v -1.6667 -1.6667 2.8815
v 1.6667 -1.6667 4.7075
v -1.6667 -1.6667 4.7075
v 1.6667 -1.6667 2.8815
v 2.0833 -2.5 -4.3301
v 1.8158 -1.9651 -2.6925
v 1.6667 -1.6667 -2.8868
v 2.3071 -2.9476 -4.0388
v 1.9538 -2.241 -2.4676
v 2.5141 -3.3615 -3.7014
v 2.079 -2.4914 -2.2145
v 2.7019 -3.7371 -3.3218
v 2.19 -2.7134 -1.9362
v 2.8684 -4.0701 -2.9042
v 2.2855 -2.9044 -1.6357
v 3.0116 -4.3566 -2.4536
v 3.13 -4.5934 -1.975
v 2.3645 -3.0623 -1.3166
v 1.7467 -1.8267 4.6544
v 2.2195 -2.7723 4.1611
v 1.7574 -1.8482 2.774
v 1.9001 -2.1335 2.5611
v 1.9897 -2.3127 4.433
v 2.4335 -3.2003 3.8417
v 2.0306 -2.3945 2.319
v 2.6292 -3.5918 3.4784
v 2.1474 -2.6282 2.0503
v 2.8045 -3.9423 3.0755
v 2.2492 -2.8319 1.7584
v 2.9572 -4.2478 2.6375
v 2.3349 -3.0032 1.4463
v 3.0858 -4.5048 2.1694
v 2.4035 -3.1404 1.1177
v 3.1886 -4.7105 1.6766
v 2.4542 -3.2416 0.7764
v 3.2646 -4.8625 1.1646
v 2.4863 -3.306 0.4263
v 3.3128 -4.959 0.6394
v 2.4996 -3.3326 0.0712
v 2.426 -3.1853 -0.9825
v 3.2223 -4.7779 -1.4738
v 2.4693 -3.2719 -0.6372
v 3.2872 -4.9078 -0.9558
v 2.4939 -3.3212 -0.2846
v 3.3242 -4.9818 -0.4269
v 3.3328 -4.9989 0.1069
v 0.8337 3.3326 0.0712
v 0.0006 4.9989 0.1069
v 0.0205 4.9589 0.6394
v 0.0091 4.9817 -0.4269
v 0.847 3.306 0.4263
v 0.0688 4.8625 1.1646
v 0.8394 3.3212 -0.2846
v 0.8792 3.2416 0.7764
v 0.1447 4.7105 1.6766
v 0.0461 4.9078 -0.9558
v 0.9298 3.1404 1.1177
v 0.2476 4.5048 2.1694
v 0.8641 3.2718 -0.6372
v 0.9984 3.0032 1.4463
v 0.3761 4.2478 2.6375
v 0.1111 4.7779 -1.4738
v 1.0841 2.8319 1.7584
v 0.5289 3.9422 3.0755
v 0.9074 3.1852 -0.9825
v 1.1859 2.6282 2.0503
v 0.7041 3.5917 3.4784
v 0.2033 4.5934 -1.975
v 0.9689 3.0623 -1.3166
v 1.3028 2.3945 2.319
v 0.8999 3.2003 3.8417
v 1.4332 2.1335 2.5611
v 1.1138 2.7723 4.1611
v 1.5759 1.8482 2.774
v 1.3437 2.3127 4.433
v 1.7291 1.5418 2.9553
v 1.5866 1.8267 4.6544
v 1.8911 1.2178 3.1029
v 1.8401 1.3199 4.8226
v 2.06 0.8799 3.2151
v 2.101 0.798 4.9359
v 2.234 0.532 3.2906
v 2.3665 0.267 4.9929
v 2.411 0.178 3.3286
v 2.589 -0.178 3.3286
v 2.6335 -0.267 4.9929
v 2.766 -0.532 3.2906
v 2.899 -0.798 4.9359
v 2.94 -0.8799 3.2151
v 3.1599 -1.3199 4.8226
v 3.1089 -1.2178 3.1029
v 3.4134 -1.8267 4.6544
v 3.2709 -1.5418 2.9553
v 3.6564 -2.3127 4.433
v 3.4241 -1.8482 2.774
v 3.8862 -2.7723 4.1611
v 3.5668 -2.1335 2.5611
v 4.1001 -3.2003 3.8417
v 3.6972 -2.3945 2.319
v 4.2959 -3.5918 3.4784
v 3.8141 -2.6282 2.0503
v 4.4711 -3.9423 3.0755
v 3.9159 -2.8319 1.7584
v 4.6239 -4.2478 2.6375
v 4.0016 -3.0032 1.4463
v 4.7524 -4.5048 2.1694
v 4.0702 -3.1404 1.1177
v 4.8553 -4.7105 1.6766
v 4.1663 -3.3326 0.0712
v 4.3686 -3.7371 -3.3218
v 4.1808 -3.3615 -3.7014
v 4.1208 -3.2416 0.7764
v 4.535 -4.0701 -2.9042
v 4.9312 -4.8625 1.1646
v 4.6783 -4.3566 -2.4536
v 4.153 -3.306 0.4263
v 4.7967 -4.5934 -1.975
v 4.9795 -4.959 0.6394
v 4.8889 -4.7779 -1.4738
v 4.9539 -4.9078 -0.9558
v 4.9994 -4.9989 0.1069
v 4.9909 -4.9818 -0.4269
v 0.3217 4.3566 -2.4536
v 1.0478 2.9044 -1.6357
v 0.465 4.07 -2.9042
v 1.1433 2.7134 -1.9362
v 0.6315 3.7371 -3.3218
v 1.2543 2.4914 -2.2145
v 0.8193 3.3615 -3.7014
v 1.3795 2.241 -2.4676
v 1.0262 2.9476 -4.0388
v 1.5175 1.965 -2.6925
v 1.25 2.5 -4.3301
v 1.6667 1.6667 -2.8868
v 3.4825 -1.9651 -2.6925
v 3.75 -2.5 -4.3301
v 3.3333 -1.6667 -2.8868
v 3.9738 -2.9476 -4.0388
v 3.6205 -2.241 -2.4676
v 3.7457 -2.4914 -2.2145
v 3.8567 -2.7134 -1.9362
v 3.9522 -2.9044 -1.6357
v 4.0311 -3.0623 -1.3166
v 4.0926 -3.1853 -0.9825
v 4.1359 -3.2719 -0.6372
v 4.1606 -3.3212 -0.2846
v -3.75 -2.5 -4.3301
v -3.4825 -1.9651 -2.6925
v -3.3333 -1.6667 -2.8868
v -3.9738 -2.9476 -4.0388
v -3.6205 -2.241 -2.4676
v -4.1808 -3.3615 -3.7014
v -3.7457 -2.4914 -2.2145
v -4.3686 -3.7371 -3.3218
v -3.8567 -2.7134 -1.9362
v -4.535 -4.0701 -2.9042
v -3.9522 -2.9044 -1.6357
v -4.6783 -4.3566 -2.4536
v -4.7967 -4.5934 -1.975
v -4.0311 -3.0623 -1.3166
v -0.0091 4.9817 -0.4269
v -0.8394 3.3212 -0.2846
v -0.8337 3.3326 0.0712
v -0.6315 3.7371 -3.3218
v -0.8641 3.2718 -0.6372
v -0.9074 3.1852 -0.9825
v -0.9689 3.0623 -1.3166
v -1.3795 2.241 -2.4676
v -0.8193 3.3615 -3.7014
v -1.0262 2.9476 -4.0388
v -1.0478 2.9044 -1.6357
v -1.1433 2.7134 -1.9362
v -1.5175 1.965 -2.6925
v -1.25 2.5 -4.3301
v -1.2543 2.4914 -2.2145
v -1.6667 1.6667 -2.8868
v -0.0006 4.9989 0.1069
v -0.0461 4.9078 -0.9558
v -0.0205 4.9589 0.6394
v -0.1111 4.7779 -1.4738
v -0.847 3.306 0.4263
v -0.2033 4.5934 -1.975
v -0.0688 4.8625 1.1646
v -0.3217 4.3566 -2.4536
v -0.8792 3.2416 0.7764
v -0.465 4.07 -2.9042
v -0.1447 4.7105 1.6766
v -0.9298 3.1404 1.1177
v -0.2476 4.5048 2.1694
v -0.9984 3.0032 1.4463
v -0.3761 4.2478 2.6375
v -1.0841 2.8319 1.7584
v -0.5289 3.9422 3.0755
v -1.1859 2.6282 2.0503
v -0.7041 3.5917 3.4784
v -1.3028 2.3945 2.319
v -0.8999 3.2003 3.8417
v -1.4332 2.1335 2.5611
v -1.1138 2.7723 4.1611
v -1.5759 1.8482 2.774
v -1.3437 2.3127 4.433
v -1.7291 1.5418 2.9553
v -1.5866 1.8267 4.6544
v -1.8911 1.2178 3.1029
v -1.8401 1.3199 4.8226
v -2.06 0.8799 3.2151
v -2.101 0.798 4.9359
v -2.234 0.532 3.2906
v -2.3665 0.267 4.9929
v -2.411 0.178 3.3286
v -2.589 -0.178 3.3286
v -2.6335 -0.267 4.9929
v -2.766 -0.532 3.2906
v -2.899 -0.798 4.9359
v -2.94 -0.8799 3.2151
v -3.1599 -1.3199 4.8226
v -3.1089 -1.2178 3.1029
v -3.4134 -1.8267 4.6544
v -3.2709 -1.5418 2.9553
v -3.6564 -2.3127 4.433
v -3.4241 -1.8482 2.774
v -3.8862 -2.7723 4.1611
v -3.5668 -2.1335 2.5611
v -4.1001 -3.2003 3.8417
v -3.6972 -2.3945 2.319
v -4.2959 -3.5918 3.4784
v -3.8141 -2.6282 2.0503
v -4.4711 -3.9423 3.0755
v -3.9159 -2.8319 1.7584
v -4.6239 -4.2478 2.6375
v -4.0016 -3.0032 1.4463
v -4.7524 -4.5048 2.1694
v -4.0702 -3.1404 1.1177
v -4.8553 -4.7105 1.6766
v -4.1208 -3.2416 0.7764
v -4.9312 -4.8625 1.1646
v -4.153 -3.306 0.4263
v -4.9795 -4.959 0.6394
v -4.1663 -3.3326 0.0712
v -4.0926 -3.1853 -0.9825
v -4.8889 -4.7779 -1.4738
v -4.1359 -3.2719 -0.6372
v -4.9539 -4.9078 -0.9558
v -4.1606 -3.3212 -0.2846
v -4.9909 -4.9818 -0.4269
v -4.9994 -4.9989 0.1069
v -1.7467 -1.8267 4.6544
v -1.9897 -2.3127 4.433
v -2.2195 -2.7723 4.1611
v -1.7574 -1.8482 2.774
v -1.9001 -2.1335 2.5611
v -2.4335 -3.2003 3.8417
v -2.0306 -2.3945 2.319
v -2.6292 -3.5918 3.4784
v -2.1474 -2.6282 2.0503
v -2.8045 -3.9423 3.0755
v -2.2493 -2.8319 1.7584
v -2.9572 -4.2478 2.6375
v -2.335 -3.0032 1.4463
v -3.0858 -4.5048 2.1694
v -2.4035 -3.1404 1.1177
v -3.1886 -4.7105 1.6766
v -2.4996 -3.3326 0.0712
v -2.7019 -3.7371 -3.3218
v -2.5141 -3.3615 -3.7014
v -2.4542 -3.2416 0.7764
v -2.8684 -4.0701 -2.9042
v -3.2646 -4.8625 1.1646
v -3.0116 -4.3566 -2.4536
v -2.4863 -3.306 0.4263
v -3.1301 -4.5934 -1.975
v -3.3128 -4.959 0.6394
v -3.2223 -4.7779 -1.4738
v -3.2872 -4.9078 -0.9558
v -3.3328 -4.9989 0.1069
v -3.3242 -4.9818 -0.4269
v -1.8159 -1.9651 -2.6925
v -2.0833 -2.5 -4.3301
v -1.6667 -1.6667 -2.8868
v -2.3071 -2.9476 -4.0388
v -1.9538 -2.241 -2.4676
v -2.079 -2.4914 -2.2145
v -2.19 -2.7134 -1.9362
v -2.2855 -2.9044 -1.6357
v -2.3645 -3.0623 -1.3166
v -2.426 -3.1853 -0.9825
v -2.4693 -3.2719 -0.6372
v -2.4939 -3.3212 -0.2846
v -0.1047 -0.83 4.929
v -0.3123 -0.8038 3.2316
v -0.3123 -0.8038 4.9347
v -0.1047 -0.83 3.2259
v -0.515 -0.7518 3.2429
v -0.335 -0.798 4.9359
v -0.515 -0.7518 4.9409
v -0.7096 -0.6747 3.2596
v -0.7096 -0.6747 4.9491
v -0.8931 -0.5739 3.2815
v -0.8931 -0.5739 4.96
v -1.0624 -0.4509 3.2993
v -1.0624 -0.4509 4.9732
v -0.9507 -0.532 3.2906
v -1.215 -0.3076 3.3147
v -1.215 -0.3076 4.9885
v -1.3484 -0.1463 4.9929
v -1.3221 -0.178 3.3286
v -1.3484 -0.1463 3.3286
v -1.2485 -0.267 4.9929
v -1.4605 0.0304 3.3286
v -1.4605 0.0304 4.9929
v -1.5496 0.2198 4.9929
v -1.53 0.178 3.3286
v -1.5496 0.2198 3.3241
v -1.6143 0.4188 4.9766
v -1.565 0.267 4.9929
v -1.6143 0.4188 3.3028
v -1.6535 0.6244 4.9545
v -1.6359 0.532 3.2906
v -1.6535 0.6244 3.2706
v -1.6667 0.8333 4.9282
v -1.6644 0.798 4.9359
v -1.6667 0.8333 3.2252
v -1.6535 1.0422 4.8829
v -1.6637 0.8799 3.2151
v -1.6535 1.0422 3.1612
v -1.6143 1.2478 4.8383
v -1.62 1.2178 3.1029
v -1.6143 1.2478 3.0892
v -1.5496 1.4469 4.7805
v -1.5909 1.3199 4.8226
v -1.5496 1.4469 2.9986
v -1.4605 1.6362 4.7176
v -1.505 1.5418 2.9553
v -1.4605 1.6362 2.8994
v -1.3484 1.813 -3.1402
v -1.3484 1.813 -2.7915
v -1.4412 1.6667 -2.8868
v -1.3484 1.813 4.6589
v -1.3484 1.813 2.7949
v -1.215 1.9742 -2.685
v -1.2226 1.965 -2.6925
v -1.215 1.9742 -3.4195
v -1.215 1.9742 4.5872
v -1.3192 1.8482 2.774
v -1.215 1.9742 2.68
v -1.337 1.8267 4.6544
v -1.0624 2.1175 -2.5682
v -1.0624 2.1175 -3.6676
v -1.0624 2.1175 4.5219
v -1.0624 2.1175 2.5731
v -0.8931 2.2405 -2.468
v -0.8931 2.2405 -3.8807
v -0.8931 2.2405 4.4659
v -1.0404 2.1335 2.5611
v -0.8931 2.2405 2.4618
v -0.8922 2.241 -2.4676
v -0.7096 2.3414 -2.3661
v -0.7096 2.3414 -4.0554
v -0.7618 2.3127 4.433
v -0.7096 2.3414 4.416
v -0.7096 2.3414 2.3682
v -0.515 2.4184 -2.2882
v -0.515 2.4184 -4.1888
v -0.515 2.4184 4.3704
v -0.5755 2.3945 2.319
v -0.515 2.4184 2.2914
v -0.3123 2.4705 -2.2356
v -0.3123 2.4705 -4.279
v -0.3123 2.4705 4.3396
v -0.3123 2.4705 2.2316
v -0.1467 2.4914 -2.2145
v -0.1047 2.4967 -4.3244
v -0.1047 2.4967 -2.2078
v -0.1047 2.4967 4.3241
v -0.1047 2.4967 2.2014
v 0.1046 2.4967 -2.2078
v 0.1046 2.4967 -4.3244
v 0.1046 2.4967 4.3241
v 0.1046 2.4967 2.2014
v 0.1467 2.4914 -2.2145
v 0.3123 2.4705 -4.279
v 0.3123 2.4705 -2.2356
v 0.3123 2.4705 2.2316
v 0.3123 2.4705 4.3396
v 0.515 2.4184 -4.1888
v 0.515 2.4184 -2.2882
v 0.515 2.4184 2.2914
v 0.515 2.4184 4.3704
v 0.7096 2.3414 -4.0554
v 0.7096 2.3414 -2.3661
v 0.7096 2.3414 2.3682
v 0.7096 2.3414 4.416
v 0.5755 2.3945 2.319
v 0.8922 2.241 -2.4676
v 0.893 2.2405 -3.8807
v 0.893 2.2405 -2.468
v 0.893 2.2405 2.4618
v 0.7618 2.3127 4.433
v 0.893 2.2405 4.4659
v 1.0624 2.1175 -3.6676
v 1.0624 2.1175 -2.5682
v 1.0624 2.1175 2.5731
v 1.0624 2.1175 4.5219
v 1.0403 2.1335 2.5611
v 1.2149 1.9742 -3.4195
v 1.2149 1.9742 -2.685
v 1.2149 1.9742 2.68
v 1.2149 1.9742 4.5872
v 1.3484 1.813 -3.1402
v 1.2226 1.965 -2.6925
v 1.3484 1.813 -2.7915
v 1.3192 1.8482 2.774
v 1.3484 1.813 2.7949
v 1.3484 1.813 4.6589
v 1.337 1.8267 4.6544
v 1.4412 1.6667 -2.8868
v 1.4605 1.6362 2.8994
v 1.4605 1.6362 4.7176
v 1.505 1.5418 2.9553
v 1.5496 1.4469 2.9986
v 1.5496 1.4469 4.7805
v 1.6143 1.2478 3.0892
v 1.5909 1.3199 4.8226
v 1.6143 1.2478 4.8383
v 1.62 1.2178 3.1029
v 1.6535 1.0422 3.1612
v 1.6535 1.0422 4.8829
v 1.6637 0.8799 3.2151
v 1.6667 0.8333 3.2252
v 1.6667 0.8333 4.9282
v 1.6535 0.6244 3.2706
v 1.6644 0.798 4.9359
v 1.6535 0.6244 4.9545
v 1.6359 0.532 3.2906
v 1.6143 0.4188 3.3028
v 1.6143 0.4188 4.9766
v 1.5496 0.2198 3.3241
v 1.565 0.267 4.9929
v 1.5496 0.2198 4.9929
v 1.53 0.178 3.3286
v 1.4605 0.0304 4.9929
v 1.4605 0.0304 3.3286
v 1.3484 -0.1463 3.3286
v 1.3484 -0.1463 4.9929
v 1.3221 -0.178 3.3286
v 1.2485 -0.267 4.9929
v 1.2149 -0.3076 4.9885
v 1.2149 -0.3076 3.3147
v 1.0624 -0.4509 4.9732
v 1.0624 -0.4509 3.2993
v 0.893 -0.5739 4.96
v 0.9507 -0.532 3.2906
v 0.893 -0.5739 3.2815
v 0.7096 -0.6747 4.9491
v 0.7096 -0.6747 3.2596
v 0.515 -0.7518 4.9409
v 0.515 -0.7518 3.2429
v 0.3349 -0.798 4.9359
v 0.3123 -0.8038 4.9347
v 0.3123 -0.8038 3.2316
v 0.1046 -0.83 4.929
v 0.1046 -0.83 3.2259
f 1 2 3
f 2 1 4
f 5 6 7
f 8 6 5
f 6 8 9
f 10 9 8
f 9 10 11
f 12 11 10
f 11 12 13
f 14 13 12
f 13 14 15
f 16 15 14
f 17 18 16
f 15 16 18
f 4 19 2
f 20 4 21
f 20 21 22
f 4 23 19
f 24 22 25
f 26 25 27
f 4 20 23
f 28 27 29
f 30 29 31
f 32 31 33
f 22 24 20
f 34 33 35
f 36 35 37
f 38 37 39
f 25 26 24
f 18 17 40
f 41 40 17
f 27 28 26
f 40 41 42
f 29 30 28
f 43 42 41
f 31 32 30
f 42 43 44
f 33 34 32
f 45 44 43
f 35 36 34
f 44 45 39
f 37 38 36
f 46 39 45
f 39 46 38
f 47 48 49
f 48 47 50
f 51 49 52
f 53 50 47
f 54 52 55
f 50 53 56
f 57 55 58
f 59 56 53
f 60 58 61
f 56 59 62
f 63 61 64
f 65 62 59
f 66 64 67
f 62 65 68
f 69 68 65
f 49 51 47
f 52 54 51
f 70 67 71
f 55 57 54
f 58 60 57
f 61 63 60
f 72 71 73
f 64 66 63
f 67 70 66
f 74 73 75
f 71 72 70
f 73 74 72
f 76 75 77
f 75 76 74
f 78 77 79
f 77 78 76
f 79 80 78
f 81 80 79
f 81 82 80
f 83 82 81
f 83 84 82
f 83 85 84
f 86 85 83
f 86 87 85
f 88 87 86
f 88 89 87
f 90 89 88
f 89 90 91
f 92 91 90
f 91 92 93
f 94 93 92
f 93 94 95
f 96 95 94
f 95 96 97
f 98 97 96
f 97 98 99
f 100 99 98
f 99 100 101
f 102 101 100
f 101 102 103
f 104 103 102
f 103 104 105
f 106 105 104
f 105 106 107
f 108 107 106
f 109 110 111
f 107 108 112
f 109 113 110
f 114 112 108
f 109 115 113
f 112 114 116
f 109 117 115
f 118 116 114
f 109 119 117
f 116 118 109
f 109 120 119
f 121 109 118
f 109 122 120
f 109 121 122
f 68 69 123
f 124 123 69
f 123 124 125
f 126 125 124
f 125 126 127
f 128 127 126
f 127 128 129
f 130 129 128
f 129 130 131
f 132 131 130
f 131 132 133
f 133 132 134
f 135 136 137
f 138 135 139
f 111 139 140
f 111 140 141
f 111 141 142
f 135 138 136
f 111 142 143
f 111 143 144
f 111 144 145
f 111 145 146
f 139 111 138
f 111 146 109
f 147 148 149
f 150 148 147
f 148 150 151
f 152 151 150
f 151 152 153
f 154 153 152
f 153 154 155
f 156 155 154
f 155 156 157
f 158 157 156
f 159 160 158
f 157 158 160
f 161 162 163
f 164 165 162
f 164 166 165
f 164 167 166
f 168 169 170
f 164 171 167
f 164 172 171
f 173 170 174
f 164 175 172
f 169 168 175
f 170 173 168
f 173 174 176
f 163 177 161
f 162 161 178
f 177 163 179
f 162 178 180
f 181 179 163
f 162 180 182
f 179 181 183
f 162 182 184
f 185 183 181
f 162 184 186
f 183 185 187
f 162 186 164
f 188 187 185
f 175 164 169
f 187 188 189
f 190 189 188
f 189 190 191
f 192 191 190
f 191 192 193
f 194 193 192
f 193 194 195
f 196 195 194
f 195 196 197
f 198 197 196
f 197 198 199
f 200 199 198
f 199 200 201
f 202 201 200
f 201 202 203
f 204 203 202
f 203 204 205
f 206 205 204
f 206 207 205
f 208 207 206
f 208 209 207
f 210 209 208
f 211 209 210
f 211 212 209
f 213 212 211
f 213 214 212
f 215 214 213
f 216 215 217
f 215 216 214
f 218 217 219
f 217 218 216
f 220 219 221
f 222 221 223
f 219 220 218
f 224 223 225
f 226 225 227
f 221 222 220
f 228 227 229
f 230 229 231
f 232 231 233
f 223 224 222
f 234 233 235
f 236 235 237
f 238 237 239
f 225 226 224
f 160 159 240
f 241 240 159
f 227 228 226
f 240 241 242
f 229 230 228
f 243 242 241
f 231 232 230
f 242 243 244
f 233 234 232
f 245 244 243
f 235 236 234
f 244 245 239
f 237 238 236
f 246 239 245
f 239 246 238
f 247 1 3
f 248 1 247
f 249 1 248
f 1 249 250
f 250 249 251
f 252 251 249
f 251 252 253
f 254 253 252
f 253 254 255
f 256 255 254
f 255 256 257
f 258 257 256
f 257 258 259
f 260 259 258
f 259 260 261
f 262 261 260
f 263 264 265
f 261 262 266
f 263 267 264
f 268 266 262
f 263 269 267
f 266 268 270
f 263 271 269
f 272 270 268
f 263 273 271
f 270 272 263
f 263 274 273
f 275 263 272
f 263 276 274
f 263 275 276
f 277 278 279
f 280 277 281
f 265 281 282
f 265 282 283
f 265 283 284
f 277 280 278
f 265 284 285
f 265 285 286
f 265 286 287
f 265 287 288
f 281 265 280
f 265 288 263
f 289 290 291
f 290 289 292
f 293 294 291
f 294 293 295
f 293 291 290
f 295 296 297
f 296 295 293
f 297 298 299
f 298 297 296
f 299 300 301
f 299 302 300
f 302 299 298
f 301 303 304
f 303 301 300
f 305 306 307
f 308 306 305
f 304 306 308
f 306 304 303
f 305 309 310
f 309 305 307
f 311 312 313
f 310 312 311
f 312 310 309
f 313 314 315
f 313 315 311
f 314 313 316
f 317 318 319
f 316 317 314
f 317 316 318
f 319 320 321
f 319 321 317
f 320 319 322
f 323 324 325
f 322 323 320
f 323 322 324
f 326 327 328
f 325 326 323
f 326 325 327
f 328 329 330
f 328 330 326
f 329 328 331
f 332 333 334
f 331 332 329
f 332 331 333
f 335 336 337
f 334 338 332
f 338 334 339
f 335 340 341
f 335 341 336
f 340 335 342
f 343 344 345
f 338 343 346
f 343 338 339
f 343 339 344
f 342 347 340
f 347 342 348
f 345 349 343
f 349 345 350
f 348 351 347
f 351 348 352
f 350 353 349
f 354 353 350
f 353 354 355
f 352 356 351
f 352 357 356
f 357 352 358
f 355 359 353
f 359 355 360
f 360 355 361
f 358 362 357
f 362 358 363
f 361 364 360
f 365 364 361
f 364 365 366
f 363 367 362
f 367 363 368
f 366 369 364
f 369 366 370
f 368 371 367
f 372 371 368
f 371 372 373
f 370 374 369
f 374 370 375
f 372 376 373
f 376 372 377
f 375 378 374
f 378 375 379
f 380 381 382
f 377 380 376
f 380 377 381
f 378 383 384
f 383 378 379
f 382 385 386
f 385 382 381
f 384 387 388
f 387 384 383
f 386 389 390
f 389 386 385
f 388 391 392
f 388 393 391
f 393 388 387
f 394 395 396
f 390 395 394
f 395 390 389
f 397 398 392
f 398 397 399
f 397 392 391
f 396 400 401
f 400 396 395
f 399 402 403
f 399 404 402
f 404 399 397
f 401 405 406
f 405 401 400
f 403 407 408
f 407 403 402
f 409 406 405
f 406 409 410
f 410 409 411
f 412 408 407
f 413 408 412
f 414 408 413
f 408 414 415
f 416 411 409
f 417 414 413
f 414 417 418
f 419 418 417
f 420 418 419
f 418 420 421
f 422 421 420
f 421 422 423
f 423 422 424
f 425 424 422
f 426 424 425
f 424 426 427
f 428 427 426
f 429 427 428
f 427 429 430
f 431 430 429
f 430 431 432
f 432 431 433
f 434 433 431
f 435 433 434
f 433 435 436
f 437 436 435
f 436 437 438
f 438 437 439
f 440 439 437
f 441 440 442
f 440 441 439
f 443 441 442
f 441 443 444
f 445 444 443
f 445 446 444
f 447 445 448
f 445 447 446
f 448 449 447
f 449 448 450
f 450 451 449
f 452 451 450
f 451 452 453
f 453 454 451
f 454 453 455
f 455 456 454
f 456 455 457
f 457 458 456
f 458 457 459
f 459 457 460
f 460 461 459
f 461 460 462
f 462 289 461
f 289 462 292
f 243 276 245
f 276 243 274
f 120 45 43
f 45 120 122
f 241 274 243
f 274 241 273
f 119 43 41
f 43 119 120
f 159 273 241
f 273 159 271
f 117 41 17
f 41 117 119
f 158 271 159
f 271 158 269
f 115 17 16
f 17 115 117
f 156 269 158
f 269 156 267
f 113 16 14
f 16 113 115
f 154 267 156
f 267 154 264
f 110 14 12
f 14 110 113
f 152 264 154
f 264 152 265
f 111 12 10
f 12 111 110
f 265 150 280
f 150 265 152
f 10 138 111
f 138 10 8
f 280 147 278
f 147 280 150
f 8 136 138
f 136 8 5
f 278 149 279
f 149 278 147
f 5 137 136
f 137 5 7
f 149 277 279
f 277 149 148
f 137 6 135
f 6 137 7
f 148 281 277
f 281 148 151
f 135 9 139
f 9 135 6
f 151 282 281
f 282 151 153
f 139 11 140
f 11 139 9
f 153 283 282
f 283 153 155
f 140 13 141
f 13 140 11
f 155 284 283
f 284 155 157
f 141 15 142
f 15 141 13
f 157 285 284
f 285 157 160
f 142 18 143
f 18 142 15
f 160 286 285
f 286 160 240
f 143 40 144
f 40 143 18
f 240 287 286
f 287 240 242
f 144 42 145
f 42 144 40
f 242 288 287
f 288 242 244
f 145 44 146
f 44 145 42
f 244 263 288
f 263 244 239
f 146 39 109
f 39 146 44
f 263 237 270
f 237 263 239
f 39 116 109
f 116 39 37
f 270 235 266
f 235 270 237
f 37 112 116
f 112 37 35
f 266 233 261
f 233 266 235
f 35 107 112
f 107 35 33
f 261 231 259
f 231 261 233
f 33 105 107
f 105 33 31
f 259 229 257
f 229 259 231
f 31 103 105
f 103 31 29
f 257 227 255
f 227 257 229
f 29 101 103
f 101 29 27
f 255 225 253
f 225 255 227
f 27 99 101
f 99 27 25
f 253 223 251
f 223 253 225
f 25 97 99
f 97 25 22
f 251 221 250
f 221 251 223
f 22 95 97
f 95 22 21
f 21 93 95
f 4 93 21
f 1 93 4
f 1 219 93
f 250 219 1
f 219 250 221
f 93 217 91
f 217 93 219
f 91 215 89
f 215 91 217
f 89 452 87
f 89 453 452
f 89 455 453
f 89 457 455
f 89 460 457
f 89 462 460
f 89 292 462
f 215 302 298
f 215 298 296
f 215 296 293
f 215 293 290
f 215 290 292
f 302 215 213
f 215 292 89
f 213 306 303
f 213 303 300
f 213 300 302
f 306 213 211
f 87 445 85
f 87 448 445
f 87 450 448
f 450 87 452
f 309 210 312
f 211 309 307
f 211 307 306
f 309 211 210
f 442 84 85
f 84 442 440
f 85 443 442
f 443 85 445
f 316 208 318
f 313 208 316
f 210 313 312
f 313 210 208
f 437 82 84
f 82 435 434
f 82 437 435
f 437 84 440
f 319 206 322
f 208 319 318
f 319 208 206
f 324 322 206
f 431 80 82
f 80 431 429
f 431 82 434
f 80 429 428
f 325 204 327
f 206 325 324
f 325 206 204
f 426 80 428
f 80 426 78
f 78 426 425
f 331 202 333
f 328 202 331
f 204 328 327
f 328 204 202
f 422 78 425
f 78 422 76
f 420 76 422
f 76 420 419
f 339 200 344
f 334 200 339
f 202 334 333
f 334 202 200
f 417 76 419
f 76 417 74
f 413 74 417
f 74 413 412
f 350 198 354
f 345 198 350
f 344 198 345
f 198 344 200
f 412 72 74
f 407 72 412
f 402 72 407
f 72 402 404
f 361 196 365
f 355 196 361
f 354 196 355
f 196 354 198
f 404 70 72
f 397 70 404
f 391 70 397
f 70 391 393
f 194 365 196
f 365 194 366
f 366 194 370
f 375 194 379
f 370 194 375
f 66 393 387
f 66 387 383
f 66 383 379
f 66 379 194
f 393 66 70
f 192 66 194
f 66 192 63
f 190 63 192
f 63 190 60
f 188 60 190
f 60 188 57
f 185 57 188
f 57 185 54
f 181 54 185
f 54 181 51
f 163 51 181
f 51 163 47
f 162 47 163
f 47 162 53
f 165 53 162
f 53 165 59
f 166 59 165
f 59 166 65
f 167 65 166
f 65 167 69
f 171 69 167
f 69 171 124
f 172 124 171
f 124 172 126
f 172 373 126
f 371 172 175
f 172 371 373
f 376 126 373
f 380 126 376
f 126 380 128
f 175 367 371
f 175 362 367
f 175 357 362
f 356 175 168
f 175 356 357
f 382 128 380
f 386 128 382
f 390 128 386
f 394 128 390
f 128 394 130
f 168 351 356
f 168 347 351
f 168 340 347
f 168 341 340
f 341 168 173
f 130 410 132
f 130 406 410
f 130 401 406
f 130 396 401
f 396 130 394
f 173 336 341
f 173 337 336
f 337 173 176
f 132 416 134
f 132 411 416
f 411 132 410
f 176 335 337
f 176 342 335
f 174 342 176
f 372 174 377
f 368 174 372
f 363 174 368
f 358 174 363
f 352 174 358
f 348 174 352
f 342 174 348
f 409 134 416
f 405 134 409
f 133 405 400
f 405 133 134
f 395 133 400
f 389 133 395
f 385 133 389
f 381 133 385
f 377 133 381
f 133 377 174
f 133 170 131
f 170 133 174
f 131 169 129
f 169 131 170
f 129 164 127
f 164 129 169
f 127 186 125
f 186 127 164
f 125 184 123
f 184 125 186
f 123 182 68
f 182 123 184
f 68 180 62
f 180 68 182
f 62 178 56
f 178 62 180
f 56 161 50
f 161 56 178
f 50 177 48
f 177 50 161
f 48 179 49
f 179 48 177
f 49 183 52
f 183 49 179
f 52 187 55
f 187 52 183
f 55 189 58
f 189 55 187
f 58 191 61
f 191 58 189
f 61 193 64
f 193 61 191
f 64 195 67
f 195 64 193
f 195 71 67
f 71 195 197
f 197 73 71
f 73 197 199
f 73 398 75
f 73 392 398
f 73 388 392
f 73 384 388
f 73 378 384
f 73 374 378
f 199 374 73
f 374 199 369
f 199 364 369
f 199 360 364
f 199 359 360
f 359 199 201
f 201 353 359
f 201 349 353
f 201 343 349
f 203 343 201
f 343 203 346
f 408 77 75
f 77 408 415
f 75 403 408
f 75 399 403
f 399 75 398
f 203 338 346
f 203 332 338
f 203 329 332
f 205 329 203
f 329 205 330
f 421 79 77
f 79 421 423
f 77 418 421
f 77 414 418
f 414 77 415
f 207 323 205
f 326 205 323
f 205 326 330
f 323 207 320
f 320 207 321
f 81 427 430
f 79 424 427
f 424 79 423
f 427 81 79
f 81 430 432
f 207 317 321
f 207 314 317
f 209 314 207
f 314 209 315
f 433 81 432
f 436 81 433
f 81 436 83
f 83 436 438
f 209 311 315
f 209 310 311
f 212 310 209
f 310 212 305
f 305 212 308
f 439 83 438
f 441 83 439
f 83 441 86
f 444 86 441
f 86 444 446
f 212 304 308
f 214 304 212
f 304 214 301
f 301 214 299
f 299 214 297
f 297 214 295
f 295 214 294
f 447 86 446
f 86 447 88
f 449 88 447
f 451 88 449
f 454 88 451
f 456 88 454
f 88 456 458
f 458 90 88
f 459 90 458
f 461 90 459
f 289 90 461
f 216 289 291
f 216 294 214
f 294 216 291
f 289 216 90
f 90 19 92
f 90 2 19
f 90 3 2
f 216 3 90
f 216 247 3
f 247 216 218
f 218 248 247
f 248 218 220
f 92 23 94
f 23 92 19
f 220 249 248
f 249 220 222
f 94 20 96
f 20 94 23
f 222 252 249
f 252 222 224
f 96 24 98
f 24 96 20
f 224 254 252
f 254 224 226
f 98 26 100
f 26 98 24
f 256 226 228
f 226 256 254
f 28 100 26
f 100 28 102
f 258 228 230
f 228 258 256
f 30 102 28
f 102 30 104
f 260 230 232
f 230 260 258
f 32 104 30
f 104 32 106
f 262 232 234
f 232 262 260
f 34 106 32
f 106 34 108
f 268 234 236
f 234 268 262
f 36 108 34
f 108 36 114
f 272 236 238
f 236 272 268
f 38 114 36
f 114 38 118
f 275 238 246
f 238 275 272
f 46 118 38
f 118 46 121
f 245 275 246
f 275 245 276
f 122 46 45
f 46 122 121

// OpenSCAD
// Generated by SolidPython 1.1.3 on 2025-02-25 01:33:33
$fn=50;


intersection() {
	translate(v = [-5.0000000000, -5.0000000000, -5.0000000000]) {
		linear_extrude(height = 10) {
			difference() {
				polygon(points = [[0, 0], [5.0000000000, 10], [10, 0], [8.3333333333, 0], [6.6666666667, 3.3333333333], [3.3333333333, 3.3333333333], [1.6666666667, 0]]);
				translate(v = [5.0000000000, 5.8333333333]) {
					circle(r = 1.6666666667);
				}
			}
		}
	}
	rotate(a = 90, v = [0, 1, 0]) {
		translate(v = [-5.0000000000, -5.0000000000, -5.0000000000]) {
			linear_extrude(height = 10) {
				polygon(points = [[9.3301270189, 7.5000000000], [9.0387948484, 7.9475644476], [8.7013899854, 8.3615044513], [8.3217613875, 8.7370979763], [7.9042396813, 9.0700604263], [7.4535877600, 9.3565935206], [6.9749464512, 9.5934286231], [6.4737758721, 9.7778640289], [5.9557931435, 9.9077957850], [5.4269071715, 9.9817416901], [4.8931512411, 9.9988582039], [4.3606141916, 9.9589500691], [3.8353709579, 9.8624725392], [3.3234132705, 9.7105261849], [2.8305813044, 9.5048443395], [2.3624970575, 9.2477733259], [1.9245002169, 8.9422456905], [1.5215872470, 8.5917467505], [1.1583543913, 8.2002748347], [0.8389452414, 7.7722956725], [0.5670034681, 7.3126914512], [0.3456312568, 6.8267051218], [0.1773539185, 6.3198805903], [0.0640910829, 5.7979994752], [0.0071347997, 5.2670151533], [0.0071347997, 4.7329848467], [0.0640910829, 4.2020005248], [0.1773539185, 3.6801194097], [0.3456312568, 3.1732948782], [0.5670034681, 2.6873085488], [0.8389452414, 2.2277043275], [1.1583543913, 1.7997251653], [1.5215872470, 1.4082532495], [1.9245002169, 1.0577543095], [2.3624970575, 0.7522266741], [2.8305813044, 0.4951556605], [3.3234132705, 0.2894738151], [3.8353709579, 0.1375274608], [4.3606141916, 0.0410499309], [4.8931512411, 0.0011417961], [5.4269071715, 0.0182583099], [5.9557931435, 0.0922042150], [6.4737758721, 0.2221359711], [6.9749464512, 0.4065713769], [7.4535877600, 0.6434064794], [7.9042396813, 0.9299395737], [8.3217613875, 1.2629020237], [8.7013899854, 1.6384955487], [9.0387948484, 2.0524355524], [9.3301270189, 2.5000000000], [7.8867513459, 3.3333333333], [7.6925298989, 3.0349570350], [7.4675933236, 2.7589970325], [7.2145075917, 2.5086013491], [6.9361597875, 2.2866263825], [6.6357251733, 2.0956043196], [6.3166309674, 1.9377142513], [5.9825172480, 1.8147573140], [5.6371954290, 1.7281361434], [5.2846047810, 1.6788388733], [4.9287674940, 1.6674278641], [4.5737427944, 1.6940332873], [4.2235806386, 1.7583516405], [3.8822755137, 1.8596492101], [3.5537208696, 1.9967704403], [3.2416647050, 2.1681511161], [2.9496668113, 2.3718362063], [2.6810581647, 2.6055021663], [2.4389029276, 2.8664834436], [2.2259634943, 3.1518028850], [2.0446689788, 3.4582056992], [1.8970875045, 3.7821965854], [1.7849026123, 4.1200796064], [1.7093940553, 4.4680003499], [1.6714231998, 4.8219898978], [1.6714231998, 5.1780101022], [1.7093940553, 5.5319996501], [1.7849026123, 5.8799203936], [1.8970875045, 6.2178034146], [2.0446689788, 6.5417943008], [2.2259634943, 6.8481971150], [2.4389029276, 7.1335165564], [2.6810581647, 7.3944978337], [2.9496668113, 7.6281637937], [3.2416647050, 7.8318488839], [3.5537208696, 8.0032295597], [3.8822755137, 8.1403507899], [4.2235806386, 8.2416483595], [4.5737427944, 8.3059667127], [4.9287674940, 8.3325721359], [5.2846047810, 8.3211611267], [5.6371954290, 8.2718638566], [5.9825172480, 8.1852426860], [6.3166309674, 8.0622857487], [6.6357251733, 7.9043956804], [6.9361597875, 7.7133736175], [7.2145075917, 7.4913986509], [7.4675933236, 7.2410029675], [7.6925298989, 6.9650429650], [7.8867513459, 6.6666666667]]);
			}
		}
	}
}
/***********************************************
*********      SolidPython code:      **********
************************************************
 
from solid import *
from solid.utils import *

import math
import matplotlib.pyplot as plt
import subprocess
import os
import grok_letters as grok
import grok_think as grok_think
import letters as let
import o1_letters as o1

def arc_points(radius, start_angle, end_angle, center=[0,0], num_points=50):
    angles = [start_angle + i * (end_angle - start_angle) / (num_points - 1)
              for i in range(num_points)]
    points = [
        (center[0] + radius * math.cos(math.radians(angle)),
         center[1] + radius * math.sin(math.radians(angle)))
        for angle in angles
    ]
    return points

class Hole:
    def __init__(self, radius, x, y):
        """
        Hole defined by:
        :param x: x dimension for center point of the circle as a ratio of letter height
        :param y: y dimension for center point of the circle as a ratio of letter height
        :param radius: radius of circle as a ratio of letter height
        """
        self.x = x
        self.y = y
        self.radius = radius

class Letter2D:
    def __init__(self, letter, scale):
        self.letter = letter
        self.scale = scale
        self.shape = self.generate()
    
    def get_letter_points(self):
        points = getattr(let, self.letter)
        # points = getattr(o1, self.letter)
        # points = getattr(grok, self.letter)
        scaled_points = [(point[0] * self.scale, point[1] * self.scale) for point in points]
        return scaled_points

    def get_letter_holes(self):
        holes = []
        if self.letter == "A": 
            holes = [Hole(1/6, 1/2, 7/12)]
        if self.letter == "B":
            holes = [Hole(1/6, 1/2, 3/4), Hole(1/6, 1/2, 1/4)]
        if self.letter == "D":
            holes = [Hole(1/3, 1/2, 1/2)]

        scaled_holes = [Hole(hole.radius*self.scale, hole.x*self.scale, hole.y*self.scale) for hole in holes]
        return scaled_holes

    
    def generate(self):
        shape = polygon(points=self.get_letter_points())
        holes = self.get_letter_holes()

        if holes:
            for hole in holes:
                circle_hole = circle(r=hole.radius)
                positioned_hole = translate([hole.x, hole.y])(circle_hole)
                shape = difference()(shape, positioned_hole)
        return shape
    

    def render(self):
        scad_render_to_file(self.shape, f"output/{self.name}.scad", file_header='$fn=50;')
        subprocess.run(["C:\\Program Files\\OpenSCAD\\openscad.exe", "-o", f"output\\{self.name}.stl", f"output\\{self.name}.scad"])


class TwoLetter3D:
    def __init__(self, height, letterA, letterB=None):
        self.height = height
        self.letterA = letterA
        self.letterB = letterB
    

    def generate_3d_letter(self, letter):
        letter = letter.upper()
        # TODO: add catch here for is letter is not a letter
        shape = Letter2D(letter, self.height).generate()
        shape_3d = linear_extrude(height=self.height)(shape)
        centered_shape_3d = translate([-self.height/2, -self.height/2, -self.height/2])(shape_3d)
        return centered_shape_3d


    def render(self):
        letterA3D = self.generate_3d_letter(self.letterA)

        if self.letterB:
            letterB3D = self.generate_3d_letter(self.letterB)
            letterB3D = rotate(a=90, v=[0,1,0])(letterB3D)

            combined = intersection()(letterA3D, letterB3D)
            file_name = self.letterA + self.letterB
            scad_render_to_file(combined, f"output/{file_name}.scad", file_header='$fn=50;')
            subprocess.run(["C:\\Program Files\\OpenSCAD\\openscad.exe", "-o", f"output\\{file_name}.stl", f"output\\{file_name}.scad"])
            return
        else:
            # file_name = "o1_" + self.letterA
            # file_name = "grok_think_" + self.letterA
            file_name = self.letterA
            # file_name = "grok_" + self.letterA
            scad_render_to_file(letterA3D, f"output/{file_name}.scad", file_header='$fn=50;')
            subprocess.run(["C:\\Program Files\\OpenSCAD\\openscad.exe", "-o", f"output\\{file_name}.stl", f"output\\{file_name}.scad"])
            # subprocess.run(["openscad", "-o", f"output\\{file_name}.png", f"output\\{file_name}.scad", "--imgsize=800,600", "--autocenter"])
            subprocess.run(["openscad", "-o", f"output\\{file_name}.png", f"output\\{file_name}.scad", "--imgsize=800,600", "--camera=0,0,30,0,0,0", "--viewall", "--autocenter", "--projection=o"])
            os.remove(f"output/{file_name}.scad")
            return
                


if __name__ == "__main__":
    os.makedirs("output", exist_ok=True)

    # # Generate a letter
    # letter = input()
    # shape = TwoLetter3D(10, letter)
    # shape.render()
    
    letters = [chr(x) for x in range(ord('A'), ord('j') + 1)]

    # Generate all combos
    for letter in letters:
        for other_letter in letters:
            shape = TwoLetter3D(10, letter, other_letter)
            shape.render()

    # # Generate all letters
    # for letter in letters:
    #     shape = TwoLetter3D(10, letter)
    #     shape.render()
 
 
************************************************/
